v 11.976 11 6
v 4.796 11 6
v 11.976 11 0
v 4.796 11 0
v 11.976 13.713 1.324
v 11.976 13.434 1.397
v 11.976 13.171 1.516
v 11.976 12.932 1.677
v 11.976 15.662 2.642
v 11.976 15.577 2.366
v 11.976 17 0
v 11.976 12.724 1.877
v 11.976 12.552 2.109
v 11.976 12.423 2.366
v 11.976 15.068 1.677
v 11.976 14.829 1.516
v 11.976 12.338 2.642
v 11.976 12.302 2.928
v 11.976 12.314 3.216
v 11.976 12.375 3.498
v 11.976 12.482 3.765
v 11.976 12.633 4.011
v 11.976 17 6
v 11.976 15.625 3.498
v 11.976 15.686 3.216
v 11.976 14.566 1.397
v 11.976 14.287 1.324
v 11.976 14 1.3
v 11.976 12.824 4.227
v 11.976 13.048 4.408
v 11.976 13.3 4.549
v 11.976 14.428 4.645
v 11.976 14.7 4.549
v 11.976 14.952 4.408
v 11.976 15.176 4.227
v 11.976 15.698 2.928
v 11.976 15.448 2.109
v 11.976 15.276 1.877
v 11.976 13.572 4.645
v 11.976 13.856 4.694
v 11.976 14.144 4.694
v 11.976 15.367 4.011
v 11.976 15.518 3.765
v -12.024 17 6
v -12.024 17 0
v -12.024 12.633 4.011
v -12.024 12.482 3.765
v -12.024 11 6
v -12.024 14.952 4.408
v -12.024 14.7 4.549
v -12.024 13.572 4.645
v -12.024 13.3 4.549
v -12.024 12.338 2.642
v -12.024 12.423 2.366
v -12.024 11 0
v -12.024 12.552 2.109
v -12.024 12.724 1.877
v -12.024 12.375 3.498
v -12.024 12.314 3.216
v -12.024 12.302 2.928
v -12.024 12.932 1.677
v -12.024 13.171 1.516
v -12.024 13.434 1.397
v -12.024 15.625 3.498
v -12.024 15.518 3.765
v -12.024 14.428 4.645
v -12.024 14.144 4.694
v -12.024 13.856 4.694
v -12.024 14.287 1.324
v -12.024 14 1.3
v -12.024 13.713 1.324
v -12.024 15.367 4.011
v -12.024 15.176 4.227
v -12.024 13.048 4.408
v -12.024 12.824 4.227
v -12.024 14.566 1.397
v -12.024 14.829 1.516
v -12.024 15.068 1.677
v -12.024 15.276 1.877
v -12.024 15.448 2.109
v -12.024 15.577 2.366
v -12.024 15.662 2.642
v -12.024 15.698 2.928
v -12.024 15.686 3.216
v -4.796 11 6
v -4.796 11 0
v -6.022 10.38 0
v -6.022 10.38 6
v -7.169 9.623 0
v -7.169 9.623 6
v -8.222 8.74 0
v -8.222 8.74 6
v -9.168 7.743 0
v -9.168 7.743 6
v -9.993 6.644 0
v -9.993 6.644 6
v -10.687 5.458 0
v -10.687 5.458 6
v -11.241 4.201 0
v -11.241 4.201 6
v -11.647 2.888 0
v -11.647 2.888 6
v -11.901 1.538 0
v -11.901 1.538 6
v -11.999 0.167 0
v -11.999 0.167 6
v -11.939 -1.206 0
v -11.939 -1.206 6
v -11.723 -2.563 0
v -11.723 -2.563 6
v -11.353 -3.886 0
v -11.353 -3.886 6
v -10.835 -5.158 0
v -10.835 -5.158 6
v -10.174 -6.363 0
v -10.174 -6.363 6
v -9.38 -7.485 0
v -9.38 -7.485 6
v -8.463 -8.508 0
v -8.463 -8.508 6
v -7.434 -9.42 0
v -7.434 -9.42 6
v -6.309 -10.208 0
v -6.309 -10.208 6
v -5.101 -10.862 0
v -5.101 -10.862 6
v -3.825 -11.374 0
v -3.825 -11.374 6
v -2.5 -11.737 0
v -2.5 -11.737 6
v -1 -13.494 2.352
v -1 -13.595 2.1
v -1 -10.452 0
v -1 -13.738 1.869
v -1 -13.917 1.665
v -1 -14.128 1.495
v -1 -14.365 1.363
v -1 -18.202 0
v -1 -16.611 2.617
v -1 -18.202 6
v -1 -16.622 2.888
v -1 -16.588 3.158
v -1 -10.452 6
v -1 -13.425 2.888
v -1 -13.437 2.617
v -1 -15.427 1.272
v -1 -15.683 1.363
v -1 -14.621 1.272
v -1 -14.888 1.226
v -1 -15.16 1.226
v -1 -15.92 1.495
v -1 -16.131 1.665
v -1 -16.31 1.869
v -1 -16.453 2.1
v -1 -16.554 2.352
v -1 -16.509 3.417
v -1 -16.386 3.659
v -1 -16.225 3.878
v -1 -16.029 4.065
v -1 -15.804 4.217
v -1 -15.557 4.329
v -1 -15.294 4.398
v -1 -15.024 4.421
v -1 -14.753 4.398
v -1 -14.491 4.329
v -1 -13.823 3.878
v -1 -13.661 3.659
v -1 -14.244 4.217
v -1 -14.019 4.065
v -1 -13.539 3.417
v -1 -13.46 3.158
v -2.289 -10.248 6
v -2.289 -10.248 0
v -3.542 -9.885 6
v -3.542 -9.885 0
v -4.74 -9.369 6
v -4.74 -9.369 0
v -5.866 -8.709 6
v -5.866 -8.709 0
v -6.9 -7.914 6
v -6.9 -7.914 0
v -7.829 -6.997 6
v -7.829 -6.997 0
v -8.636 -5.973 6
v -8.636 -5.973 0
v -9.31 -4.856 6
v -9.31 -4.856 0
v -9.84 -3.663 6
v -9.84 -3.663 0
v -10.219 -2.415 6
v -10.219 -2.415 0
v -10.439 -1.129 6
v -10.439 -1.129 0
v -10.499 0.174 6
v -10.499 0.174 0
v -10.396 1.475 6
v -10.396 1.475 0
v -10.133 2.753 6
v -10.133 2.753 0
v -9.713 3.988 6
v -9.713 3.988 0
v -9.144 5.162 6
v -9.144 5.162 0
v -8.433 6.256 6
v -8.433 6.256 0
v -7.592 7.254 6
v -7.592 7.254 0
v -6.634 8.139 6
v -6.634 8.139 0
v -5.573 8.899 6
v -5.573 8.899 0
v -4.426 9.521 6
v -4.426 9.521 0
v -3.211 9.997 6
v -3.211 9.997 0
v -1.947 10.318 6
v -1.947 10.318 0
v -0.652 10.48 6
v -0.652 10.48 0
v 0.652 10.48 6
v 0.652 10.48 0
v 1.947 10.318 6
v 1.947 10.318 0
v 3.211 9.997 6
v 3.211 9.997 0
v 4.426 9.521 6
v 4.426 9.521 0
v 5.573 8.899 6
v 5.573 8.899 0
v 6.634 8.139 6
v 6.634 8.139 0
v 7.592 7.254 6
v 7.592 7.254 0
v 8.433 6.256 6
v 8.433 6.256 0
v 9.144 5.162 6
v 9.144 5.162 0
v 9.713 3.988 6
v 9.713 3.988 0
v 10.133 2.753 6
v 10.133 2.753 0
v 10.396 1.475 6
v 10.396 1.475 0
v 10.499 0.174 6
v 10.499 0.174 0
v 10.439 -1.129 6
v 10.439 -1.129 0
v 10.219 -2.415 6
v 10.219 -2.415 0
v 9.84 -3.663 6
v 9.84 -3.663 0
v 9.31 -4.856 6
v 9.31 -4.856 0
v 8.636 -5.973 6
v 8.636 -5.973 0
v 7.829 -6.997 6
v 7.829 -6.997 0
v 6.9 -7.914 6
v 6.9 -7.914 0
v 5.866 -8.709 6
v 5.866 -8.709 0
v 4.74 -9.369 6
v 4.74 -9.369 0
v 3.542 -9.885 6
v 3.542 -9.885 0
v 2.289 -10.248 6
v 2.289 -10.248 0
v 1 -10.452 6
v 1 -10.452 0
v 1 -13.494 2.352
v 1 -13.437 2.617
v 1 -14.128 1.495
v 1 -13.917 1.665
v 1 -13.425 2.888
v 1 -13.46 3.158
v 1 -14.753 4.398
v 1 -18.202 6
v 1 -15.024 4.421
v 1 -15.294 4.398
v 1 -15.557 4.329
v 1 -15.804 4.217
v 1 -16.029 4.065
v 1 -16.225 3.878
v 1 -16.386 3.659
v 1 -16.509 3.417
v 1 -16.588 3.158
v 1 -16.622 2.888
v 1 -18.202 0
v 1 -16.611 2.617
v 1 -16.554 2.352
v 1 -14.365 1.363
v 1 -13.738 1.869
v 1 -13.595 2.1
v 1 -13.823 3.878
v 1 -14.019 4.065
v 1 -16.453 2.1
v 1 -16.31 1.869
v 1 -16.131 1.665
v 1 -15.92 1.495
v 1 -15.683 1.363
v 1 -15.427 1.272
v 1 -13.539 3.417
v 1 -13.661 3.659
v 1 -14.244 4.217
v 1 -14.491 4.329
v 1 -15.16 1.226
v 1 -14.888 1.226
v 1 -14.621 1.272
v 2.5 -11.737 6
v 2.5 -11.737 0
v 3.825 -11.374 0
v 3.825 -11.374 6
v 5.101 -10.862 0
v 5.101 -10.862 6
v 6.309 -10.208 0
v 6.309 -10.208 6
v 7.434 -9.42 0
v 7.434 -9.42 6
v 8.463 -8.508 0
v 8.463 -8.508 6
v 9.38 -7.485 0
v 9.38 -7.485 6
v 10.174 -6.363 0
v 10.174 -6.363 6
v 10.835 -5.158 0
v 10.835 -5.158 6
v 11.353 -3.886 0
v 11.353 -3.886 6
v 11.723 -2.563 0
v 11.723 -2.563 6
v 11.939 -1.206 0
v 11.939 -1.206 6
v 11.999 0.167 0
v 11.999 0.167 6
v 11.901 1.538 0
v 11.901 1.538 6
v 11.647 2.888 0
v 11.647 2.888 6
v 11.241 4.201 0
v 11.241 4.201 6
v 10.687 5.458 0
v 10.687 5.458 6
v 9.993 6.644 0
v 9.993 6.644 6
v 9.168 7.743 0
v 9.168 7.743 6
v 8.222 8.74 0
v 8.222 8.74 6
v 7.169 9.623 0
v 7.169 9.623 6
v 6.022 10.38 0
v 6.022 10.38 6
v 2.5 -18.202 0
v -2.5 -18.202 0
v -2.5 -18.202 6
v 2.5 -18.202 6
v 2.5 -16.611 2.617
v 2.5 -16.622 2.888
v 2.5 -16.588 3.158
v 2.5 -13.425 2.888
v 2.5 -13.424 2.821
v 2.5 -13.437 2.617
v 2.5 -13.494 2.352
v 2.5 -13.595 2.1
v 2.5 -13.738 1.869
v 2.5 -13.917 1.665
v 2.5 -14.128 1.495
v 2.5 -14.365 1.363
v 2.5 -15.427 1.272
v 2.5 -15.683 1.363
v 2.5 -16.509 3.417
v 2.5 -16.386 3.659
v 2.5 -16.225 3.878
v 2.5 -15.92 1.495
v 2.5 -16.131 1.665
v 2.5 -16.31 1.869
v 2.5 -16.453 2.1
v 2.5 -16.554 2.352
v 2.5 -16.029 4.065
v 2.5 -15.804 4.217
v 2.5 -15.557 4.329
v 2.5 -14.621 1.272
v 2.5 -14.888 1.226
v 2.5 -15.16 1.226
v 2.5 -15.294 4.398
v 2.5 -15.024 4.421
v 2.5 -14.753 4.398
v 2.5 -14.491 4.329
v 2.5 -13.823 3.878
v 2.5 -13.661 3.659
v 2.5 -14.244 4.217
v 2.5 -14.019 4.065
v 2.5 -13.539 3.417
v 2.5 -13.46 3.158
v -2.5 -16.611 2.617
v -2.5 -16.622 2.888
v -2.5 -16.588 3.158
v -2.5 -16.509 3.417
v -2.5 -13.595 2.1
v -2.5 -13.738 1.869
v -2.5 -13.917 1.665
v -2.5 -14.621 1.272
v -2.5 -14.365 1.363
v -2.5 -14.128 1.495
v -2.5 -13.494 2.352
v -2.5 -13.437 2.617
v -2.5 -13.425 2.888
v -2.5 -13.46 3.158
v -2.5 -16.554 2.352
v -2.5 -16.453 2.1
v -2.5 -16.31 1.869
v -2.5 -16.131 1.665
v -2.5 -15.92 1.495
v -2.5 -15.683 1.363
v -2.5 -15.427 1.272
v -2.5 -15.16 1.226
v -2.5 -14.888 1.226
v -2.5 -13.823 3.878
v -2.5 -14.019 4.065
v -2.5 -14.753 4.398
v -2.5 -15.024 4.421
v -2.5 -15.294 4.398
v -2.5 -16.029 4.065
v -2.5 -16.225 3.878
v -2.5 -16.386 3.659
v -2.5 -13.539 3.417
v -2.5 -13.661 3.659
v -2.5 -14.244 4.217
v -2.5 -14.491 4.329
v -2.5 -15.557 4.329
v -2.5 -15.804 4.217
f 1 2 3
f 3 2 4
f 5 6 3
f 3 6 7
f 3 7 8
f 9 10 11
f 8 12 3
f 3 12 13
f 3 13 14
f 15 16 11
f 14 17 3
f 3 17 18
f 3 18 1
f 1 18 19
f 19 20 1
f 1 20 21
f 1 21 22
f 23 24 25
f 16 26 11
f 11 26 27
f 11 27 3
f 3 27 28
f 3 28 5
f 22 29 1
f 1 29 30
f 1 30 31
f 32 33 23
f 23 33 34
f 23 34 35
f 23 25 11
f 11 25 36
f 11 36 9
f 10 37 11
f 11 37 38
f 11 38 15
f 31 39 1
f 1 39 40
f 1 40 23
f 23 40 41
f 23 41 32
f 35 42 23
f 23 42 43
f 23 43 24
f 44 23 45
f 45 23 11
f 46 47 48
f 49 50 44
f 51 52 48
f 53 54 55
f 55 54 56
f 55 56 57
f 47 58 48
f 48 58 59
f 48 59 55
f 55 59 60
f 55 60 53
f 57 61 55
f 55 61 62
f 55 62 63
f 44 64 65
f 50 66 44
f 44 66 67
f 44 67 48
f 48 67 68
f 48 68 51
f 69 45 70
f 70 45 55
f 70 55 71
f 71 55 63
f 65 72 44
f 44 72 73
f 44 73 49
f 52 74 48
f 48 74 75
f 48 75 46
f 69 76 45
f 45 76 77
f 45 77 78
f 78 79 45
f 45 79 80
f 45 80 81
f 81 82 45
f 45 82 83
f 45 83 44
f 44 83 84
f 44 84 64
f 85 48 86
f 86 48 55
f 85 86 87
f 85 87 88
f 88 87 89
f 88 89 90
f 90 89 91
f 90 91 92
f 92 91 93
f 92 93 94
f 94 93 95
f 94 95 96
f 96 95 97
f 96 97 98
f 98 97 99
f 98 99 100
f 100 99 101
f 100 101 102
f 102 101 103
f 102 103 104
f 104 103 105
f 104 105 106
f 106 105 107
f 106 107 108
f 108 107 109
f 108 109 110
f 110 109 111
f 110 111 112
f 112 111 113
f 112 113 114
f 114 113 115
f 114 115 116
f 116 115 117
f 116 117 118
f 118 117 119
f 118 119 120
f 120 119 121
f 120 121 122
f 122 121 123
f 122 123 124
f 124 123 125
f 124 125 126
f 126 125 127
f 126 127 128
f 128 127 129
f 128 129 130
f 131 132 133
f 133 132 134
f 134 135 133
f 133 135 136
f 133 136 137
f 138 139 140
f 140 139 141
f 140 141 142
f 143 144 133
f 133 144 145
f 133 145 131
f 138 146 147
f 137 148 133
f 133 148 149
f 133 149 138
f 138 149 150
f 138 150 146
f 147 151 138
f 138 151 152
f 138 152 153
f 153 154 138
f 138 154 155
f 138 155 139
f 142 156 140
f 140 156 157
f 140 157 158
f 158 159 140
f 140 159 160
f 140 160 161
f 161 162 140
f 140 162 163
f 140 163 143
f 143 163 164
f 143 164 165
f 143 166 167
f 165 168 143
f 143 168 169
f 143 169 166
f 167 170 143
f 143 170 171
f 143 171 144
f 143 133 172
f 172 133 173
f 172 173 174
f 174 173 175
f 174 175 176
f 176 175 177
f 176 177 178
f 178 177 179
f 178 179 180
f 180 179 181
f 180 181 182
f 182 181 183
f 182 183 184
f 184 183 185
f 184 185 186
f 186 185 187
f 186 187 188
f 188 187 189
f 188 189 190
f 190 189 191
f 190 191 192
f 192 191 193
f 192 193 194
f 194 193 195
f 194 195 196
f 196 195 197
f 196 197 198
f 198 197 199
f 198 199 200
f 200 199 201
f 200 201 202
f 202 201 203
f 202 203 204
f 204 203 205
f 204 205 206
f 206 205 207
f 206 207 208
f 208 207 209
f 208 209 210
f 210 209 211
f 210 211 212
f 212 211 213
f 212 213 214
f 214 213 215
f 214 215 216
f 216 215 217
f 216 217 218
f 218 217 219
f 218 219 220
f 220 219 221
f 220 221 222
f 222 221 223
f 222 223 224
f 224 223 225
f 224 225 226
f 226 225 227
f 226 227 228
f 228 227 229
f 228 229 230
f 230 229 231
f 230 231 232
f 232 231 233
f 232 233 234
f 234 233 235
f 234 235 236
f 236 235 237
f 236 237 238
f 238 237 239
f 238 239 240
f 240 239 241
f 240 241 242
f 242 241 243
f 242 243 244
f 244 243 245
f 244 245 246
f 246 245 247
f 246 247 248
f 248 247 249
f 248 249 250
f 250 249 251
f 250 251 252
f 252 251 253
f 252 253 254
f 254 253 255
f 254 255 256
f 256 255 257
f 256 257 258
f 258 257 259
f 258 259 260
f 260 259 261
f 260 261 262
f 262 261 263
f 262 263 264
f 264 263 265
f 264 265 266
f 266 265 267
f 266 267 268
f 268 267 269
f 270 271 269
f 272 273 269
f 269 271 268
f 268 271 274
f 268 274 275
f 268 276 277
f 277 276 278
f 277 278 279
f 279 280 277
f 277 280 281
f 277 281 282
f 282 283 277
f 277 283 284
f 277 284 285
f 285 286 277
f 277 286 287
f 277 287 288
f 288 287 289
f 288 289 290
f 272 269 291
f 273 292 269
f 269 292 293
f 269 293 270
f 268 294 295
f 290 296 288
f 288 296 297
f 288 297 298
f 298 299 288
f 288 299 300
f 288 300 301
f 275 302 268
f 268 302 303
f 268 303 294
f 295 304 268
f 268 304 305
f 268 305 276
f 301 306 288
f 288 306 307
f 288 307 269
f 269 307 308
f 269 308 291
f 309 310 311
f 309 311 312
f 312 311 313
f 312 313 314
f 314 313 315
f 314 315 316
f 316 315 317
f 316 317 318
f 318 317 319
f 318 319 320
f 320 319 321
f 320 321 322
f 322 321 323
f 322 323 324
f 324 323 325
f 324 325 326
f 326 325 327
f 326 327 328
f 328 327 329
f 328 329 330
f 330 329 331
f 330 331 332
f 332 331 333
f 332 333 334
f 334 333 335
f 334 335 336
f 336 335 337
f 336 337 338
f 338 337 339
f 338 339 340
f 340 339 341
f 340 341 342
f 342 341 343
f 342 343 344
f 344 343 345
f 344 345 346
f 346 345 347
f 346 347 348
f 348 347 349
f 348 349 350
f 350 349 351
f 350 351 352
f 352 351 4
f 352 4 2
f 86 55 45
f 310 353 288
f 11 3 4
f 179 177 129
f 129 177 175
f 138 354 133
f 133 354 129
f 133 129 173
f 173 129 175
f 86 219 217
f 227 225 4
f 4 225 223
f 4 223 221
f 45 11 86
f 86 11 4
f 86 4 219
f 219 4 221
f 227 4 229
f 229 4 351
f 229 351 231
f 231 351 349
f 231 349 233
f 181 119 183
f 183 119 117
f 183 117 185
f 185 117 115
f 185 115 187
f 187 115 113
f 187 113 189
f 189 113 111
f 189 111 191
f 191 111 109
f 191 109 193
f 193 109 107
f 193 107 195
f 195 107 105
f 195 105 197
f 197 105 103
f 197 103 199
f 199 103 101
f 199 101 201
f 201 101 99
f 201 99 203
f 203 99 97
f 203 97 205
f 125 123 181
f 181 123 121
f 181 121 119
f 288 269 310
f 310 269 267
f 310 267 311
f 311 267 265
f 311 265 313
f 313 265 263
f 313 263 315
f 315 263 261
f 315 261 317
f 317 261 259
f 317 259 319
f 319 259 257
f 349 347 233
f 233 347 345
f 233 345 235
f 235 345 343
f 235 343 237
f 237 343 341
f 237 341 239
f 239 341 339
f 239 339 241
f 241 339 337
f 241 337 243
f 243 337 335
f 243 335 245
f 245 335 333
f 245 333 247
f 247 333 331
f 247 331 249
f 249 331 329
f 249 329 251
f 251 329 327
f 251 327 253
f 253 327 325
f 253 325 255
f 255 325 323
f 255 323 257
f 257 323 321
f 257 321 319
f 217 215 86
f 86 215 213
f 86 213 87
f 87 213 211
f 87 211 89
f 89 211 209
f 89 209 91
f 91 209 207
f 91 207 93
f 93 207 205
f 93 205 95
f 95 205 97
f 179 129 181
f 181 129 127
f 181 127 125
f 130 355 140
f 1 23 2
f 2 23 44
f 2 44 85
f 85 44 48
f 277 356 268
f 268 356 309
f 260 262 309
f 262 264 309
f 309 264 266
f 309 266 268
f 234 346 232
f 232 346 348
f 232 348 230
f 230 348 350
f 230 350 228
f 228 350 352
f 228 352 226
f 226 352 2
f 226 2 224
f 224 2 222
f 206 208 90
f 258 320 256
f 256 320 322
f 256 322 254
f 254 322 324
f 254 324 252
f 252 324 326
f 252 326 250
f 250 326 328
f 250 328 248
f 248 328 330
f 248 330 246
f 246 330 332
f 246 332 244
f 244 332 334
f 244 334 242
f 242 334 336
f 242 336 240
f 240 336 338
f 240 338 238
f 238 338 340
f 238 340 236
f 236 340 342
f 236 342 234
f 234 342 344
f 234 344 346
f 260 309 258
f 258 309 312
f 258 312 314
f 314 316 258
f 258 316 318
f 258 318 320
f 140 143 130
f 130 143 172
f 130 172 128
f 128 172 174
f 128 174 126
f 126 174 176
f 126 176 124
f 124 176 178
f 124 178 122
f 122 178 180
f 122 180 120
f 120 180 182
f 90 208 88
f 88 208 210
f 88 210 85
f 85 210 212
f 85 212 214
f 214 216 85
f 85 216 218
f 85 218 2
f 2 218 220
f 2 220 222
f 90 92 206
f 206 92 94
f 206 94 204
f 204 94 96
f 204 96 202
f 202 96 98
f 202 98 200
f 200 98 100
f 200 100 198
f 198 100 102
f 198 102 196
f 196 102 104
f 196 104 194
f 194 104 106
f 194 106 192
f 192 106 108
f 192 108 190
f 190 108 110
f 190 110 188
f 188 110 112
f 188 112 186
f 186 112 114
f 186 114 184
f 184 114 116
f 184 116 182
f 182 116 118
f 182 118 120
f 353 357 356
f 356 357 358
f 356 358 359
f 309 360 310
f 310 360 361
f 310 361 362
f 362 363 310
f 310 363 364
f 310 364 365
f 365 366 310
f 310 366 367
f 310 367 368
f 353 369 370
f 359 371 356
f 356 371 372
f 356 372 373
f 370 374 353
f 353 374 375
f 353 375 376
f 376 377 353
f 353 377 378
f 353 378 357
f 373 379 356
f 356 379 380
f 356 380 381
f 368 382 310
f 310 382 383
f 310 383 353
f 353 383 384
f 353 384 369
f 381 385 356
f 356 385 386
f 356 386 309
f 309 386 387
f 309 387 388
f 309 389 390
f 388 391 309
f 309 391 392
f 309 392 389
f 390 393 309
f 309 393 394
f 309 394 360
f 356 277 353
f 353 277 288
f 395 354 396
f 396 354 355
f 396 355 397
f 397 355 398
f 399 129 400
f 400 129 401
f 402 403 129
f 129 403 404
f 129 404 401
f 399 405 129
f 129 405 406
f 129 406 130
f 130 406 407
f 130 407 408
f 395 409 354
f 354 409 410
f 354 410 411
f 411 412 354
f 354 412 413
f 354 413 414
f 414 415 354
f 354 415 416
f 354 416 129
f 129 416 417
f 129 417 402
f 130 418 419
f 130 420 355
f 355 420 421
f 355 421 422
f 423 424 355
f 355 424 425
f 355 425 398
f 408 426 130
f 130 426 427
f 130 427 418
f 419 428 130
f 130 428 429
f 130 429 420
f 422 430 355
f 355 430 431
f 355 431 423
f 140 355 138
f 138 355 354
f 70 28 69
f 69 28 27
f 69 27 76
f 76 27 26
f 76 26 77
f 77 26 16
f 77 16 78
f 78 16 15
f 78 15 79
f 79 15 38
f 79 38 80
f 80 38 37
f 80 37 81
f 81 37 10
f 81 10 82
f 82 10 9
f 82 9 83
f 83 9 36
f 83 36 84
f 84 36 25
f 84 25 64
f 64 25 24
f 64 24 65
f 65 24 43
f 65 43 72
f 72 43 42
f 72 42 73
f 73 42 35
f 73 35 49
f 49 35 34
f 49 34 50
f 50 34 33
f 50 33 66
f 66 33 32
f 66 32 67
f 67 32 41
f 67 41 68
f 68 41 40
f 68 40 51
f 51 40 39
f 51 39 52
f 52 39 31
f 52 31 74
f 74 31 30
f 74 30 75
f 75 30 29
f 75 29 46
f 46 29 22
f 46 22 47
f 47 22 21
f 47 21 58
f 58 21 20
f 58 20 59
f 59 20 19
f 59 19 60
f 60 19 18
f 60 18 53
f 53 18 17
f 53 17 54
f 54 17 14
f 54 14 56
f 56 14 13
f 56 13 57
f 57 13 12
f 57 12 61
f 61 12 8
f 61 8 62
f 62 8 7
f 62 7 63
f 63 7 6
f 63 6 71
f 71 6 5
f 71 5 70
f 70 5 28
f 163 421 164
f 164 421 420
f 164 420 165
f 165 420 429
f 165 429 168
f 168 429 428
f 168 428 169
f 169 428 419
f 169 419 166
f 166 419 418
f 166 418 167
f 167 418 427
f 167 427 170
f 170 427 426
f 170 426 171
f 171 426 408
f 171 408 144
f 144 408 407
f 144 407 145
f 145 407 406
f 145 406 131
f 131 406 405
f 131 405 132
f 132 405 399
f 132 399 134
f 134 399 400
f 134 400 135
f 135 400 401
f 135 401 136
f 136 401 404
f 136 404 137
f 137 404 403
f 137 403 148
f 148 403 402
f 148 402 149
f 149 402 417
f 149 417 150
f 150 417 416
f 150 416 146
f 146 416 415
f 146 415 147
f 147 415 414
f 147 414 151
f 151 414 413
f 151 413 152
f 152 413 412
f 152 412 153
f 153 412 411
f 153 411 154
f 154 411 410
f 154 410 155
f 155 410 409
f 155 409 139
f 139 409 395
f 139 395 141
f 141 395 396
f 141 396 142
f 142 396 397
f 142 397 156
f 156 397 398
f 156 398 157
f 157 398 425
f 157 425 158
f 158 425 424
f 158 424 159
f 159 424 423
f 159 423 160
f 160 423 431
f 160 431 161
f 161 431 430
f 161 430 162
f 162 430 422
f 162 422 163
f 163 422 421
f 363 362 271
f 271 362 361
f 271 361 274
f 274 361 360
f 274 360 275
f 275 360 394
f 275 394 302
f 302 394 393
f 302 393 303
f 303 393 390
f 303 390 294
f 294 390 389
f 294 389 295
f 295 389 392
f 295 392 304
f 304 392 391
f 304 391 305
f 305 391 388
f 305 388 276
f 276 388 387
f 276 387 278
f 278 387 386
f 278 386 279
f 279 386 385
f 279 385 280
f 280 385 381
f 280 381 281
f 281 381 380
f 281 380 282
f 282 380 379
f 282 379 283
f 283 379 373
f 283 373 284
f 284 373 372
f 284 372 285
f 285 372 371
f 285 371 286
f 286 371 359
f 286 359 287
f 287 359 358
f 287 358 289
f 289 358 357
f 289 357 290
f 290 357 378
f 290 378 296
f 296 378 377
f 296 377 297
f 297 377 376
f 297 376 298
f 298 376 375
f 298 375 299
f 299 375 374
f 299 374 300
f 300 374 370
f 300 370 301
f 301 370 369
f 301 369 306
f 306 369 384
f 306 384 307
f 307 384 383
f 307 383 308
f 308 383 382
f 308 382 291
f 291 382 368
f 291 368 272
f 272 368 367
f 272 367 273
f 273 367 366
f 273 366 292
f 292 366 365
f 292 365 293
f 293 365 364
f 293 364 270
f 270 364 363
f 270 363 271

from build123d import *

# Parameters (mm, degrees)
SALIENTE_EXTRUIR1_DEPTH      = 6
TALADRO_DE_MARGEN_PARA_M31_D = 3.4
TALADRO_DE_MARGEN_PARA_M32_D = 3.2


with BuildPart() as part:
    # Croquis1 → Saliente-Extruir1 (new body)
    with BuildSketch(Plane.XY):
        with BuildLine():
            Line((11.975508884, 11), (11.975508884, 17))
            Line((11.975508884, 17), (-12.024491116, 17))
            Line((-12.024491116, 17), (-12.024491116, 11))
            Line((-12.024491116, 11), (-4.795831523, 11))
            ThreePointArc((-4.795831523, 11), (-11.939288491, -1.205566393), (-2.5, -11.736694594))
            Line((-2.5, -11.736694594), (-2.5, -18.20187424))
            Line((-2.5, -18.20187424), (-1, -18.20187424))
            Line((-1, -18.20187424), (-1, -10.45227248))
            ThreePointArc((-1, -10.45227248), (0, 10.5), (1, -10.45227248))
            Line((1, -10.45227248), (1, -18.20187424))
            Line((1, -18.20187424), (2.5, -18.20187424))
            Line((2.5, -18.20187424), (2.5, -11.736694594))
            ThreePointArc((2.5, -11.736694594), (11.939288491, -1.205566393), (4.795831523, 11))
            Line((4.795831523, 11), (11.975508884, 11))
        make_face()
    extrude(amount=SALIENTE_EXTRUIR1_DEPTH)

    # Taladro de margen para M31 (through all)
    with Locations(Plane(origin=(11.975508884, 0, 0), x_dir=(0, 0, -1), z_dir=(1, 0, 0))):
        with Locations((-3, 14)):
            Hole(TALADRO_DE_MARGEN_PARA_M31_D / 2)

    # Taladro de margen para M32 (through all)
    with Locations(Plane.ZY.offset(2.5)):
        with Locations((2.820532603, -15.023895907)):
            Hole(TALADRO_DE_MARGEN_PARA_M32_D / 2)


solid = part.part
